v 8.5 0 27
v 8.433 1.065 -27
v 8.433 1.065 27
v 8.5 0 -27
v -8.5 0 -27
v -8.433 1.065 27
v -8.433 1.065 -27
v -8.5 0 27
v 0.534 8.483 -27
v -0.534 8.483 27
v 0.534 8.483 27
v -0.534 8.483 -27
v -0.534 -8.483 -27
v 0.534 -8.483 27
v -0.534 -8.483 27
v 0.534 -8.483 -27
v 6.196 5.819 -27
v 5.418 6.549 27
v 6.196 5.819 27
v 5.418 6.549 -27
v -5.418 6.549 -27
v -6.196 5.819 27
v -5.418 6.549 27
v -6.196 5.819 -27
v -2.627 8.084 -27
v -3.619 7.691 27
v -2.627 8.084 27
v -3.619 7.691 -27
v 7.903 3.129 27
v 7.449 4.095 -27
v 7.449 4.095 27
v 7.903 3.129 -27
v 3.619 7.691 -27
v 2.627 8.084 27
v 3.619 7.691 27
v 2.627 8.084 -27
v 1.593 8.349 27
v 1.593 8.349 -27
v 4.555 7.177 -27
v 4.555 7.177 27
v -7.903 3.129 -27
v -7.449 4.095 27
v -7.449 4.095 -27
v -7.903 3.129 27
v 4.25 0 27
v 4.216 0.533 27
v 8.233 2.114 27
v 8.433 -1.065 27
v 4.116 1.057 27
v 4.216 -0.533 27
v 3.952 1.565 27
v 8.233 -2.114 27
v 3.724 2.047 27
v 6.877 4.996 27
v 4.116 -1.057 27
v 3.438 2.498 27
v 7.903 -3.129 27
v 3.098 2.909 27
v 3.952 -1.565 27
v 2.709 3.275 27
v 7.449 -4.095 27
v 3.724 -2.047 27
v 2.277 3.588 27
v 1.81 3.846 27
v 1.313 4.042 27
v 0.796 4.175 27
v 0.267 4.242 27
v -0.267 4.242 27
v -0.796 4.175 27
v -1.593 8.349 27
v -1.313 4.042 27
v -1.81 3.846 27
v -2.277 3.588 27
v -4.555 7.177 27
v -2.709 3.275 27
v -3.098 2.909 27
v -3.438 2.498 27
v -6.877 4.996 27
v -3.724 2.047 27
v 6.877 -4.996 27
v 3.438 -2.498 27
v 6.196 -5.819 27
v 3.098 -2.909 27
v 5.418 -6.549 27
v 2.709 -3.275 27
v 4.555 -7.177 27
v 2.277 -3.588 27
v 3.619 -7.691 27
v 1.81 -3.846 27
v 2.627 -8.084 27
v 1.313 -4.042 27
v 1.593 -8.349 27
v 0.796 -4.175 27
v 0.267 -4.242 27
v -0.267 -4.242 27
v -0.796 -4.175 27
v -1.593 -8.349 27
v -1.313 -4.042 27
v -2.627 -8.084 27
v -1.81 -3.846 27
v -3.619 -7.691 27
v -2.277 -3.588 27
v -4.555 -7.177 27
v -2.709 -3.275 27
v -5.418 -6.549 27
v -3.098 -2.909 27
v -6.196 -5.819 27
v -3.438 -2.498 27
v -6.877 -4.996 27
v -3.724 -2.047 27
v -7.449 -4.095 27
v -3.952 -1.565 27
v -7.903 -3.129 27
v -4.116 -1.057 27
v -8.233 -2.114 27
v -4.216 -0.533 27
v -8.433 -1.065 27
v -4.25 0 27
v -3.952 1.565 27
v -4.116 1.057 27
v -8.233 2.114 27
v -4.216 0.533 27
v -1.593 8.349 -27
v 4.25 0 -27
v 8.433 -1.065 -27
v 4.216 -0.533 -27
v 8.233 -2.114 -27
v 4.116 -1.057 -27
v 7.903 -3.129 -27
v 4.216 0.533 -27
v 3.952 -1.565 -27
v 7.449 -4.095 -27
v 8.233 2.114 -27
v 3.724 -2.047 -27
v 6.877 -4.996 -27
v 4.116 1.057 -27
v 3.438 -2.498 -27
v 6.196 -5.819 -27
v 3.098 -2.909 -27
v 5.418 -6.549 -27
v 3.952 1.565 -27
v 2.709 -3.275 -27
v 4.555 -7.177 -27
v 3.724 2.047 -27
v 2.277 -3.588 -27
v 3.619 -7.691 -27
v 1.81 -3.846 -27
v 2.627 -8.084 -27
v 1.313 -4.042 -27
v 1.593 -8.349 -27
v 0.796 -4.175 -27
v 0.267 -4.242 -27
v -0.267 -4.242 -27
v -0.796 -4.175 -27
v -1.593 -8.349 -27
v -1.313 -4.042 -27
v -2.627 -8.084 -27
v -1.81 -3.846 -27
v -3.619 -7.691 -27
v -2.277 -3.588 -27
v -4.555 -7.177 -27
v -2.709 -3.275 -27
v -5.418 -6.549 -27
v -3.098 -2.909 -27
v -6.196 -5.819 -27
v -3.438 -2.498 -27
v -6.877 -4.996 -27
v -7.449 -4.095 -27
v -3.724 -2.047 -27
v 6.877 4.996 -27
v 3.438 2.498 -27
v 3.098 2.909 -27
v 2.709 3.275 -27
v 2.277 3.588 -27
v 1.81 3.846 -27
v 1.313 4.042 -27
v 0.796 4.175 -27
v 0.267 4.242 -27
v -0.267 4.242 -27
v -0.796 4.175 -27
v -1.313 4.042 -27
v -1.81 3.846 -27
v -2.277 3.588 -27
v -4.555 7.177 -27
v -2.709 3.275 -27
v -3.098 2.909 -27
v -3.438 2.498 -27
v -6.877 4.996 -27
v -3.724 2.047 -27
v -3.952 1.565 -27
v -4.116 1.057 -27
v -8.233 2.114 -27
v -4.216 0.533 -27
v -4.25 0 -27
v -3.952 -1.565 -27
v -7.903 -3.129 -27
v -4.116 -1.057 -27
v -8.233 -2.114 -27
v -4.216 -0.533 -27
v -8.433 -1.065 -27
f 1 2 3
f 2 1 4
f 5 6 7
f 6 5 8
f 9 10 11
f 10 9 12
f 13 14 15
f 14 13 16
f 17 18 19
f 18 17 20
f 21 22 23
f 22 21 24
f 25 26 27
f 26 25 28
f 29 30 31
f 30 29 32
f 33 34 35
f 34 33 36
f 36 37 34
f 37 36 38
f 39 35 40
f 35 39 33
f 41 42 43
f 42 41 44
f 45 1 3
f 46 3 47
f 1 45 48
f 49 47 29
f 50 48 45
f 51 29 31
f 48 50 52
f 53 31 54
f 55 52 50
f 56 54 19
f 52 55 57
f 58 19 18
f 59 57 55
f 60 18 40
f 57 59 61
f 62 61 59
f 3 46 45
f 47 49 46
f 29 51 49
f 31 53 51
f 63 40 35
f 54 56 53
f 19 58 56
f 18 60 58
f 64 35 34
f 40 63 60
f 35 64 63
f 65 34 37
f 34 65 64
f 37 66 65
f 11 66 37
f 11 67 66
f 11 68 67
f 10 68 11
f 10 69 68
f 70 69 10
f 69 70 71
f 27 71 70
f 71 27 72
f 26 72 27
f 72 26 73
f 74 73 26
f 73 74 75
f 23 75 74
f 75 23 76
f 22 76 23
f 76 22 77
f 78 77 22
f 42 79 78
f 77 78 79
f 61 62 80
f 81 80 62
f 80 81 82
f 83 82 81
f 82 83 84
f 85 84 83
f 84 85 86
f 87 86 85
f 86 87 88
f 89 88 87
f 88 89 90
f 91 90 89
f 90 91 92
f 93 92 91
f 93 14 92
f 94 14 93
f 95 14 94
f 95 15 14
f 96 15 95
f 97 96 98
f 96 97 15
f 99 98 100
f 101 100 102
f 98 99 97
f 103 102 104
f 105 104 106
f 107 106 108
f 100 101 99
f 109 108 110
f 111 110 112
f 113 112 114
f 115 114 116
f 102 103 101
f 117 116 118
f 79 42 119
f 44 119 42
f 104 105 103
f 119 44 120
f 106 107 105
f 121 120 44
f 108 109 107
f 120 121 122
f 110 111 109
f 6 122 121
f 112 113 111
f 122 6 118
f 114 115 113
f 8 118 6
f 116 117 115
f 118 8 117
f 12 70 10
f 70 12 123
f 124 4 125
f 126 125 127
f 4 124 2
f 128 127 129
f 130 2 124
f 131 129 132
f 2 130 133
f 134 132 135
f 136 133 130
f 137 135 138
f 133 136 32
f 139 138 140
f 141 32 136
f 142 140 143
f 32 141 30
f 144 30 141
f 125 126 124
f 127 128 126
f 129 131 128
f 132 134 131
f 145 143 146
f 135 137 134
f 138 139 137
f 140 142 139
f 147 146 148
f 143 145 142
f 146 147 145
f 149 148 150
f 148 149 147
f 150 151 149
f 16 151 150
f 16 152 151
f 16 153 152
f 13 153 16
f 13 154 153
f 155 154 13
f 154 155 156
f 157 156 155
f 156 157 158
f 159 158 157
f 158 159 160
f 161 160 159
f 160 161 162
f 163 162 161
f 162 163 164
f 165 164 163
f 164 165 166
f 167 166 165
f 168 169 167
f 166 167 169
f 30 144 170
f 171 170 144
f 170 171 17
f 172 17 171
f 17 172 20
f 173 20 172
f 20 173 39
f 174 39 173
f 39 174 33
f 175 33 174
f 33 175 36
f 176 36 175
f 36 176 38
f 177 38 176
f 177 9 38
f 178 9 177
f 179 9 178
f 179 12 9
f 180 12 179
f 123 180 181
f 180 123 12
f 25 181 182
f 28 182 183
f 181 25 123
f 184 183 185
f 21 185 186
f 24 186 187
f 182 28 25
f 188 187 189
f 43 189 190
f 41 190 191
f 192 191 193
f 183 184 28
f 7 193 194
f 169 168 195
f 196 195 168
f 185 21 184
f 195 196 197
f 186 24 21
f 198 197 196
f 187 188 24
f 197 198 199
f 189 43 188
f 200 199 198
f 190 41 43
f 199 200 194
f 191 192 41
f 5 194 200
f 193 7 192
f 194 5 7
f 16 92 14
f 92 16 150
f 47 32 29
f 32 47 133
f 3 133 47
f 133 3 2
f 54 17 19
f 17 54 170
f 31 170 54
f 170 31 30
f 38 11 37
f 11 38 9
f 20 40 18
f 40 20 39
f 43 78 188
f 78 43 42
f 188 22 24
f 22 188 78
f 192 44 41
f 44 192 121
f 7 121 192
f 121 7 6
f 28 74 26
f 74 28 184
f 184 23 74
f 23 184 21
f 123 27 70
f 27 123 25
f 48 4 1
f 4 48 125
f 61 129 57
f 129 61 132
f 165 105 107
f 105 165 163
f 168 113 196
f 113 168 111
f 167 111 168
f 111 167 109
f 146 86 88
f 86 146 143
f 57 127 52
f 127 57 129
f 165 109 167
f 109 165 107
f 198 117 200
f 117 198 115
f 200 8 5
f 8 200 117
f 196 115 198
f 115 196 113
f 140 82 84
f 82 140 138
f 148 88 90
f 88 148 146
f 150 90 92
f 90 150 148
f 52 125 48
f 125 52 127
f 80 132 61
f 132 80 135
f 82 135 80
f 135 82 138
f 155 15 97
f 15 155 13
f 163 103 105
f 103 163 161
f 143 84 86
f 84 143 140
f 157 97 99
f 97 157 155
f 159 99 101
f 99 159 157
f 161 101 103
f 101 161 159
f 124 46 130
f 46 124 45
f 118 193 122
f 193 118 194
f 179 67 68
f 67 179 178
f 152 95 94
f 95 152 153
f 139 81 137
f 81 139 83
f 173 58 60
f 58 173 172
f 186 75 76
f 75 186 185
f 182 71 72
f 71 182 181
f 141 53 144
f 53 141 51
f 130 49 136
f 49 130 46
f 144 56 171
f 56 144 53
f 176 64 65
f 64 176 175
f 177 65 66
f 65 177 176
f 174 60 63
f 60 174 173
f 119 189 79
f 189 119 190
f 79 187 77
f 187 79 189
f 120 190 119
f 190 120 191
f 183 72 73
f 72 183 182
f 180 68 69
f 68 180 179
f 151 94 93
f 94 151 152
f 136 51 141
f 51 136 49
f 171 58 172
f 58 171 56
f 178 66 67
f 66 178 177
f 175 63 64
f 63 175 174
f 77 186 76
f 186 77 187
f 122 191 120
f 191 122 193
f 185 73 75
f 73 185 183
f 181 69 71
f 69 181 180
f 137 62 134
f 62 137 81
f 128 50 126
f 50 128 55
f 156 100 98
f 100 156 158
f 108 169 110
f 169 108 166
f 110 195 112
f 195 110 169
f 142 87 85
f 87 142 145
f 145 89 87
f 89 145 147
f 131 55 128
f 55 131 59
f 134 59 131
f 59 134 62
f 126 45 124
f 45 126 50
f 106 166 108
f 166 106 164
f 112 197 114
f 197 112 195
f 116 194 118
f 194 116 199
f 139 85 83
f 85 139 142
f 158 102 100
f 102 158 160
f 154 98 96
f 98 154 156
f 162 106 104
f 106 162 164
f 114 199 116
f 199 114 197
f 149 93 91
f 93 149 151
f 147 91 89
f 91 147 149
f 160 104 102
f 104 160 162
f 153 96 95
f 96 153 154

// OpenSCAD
$fn = 50;


difference() {
	union() {
		translate(v = [0, 0, -27.0000000000]) {
			cylinder(h = 54, r = 8.5000000000);
		}
	}
	union() {
		translate(v = [0, 0, -100.0000000000]) {
			cylinder(h = 200, r = 4.2500000000);
		}
	}
}
